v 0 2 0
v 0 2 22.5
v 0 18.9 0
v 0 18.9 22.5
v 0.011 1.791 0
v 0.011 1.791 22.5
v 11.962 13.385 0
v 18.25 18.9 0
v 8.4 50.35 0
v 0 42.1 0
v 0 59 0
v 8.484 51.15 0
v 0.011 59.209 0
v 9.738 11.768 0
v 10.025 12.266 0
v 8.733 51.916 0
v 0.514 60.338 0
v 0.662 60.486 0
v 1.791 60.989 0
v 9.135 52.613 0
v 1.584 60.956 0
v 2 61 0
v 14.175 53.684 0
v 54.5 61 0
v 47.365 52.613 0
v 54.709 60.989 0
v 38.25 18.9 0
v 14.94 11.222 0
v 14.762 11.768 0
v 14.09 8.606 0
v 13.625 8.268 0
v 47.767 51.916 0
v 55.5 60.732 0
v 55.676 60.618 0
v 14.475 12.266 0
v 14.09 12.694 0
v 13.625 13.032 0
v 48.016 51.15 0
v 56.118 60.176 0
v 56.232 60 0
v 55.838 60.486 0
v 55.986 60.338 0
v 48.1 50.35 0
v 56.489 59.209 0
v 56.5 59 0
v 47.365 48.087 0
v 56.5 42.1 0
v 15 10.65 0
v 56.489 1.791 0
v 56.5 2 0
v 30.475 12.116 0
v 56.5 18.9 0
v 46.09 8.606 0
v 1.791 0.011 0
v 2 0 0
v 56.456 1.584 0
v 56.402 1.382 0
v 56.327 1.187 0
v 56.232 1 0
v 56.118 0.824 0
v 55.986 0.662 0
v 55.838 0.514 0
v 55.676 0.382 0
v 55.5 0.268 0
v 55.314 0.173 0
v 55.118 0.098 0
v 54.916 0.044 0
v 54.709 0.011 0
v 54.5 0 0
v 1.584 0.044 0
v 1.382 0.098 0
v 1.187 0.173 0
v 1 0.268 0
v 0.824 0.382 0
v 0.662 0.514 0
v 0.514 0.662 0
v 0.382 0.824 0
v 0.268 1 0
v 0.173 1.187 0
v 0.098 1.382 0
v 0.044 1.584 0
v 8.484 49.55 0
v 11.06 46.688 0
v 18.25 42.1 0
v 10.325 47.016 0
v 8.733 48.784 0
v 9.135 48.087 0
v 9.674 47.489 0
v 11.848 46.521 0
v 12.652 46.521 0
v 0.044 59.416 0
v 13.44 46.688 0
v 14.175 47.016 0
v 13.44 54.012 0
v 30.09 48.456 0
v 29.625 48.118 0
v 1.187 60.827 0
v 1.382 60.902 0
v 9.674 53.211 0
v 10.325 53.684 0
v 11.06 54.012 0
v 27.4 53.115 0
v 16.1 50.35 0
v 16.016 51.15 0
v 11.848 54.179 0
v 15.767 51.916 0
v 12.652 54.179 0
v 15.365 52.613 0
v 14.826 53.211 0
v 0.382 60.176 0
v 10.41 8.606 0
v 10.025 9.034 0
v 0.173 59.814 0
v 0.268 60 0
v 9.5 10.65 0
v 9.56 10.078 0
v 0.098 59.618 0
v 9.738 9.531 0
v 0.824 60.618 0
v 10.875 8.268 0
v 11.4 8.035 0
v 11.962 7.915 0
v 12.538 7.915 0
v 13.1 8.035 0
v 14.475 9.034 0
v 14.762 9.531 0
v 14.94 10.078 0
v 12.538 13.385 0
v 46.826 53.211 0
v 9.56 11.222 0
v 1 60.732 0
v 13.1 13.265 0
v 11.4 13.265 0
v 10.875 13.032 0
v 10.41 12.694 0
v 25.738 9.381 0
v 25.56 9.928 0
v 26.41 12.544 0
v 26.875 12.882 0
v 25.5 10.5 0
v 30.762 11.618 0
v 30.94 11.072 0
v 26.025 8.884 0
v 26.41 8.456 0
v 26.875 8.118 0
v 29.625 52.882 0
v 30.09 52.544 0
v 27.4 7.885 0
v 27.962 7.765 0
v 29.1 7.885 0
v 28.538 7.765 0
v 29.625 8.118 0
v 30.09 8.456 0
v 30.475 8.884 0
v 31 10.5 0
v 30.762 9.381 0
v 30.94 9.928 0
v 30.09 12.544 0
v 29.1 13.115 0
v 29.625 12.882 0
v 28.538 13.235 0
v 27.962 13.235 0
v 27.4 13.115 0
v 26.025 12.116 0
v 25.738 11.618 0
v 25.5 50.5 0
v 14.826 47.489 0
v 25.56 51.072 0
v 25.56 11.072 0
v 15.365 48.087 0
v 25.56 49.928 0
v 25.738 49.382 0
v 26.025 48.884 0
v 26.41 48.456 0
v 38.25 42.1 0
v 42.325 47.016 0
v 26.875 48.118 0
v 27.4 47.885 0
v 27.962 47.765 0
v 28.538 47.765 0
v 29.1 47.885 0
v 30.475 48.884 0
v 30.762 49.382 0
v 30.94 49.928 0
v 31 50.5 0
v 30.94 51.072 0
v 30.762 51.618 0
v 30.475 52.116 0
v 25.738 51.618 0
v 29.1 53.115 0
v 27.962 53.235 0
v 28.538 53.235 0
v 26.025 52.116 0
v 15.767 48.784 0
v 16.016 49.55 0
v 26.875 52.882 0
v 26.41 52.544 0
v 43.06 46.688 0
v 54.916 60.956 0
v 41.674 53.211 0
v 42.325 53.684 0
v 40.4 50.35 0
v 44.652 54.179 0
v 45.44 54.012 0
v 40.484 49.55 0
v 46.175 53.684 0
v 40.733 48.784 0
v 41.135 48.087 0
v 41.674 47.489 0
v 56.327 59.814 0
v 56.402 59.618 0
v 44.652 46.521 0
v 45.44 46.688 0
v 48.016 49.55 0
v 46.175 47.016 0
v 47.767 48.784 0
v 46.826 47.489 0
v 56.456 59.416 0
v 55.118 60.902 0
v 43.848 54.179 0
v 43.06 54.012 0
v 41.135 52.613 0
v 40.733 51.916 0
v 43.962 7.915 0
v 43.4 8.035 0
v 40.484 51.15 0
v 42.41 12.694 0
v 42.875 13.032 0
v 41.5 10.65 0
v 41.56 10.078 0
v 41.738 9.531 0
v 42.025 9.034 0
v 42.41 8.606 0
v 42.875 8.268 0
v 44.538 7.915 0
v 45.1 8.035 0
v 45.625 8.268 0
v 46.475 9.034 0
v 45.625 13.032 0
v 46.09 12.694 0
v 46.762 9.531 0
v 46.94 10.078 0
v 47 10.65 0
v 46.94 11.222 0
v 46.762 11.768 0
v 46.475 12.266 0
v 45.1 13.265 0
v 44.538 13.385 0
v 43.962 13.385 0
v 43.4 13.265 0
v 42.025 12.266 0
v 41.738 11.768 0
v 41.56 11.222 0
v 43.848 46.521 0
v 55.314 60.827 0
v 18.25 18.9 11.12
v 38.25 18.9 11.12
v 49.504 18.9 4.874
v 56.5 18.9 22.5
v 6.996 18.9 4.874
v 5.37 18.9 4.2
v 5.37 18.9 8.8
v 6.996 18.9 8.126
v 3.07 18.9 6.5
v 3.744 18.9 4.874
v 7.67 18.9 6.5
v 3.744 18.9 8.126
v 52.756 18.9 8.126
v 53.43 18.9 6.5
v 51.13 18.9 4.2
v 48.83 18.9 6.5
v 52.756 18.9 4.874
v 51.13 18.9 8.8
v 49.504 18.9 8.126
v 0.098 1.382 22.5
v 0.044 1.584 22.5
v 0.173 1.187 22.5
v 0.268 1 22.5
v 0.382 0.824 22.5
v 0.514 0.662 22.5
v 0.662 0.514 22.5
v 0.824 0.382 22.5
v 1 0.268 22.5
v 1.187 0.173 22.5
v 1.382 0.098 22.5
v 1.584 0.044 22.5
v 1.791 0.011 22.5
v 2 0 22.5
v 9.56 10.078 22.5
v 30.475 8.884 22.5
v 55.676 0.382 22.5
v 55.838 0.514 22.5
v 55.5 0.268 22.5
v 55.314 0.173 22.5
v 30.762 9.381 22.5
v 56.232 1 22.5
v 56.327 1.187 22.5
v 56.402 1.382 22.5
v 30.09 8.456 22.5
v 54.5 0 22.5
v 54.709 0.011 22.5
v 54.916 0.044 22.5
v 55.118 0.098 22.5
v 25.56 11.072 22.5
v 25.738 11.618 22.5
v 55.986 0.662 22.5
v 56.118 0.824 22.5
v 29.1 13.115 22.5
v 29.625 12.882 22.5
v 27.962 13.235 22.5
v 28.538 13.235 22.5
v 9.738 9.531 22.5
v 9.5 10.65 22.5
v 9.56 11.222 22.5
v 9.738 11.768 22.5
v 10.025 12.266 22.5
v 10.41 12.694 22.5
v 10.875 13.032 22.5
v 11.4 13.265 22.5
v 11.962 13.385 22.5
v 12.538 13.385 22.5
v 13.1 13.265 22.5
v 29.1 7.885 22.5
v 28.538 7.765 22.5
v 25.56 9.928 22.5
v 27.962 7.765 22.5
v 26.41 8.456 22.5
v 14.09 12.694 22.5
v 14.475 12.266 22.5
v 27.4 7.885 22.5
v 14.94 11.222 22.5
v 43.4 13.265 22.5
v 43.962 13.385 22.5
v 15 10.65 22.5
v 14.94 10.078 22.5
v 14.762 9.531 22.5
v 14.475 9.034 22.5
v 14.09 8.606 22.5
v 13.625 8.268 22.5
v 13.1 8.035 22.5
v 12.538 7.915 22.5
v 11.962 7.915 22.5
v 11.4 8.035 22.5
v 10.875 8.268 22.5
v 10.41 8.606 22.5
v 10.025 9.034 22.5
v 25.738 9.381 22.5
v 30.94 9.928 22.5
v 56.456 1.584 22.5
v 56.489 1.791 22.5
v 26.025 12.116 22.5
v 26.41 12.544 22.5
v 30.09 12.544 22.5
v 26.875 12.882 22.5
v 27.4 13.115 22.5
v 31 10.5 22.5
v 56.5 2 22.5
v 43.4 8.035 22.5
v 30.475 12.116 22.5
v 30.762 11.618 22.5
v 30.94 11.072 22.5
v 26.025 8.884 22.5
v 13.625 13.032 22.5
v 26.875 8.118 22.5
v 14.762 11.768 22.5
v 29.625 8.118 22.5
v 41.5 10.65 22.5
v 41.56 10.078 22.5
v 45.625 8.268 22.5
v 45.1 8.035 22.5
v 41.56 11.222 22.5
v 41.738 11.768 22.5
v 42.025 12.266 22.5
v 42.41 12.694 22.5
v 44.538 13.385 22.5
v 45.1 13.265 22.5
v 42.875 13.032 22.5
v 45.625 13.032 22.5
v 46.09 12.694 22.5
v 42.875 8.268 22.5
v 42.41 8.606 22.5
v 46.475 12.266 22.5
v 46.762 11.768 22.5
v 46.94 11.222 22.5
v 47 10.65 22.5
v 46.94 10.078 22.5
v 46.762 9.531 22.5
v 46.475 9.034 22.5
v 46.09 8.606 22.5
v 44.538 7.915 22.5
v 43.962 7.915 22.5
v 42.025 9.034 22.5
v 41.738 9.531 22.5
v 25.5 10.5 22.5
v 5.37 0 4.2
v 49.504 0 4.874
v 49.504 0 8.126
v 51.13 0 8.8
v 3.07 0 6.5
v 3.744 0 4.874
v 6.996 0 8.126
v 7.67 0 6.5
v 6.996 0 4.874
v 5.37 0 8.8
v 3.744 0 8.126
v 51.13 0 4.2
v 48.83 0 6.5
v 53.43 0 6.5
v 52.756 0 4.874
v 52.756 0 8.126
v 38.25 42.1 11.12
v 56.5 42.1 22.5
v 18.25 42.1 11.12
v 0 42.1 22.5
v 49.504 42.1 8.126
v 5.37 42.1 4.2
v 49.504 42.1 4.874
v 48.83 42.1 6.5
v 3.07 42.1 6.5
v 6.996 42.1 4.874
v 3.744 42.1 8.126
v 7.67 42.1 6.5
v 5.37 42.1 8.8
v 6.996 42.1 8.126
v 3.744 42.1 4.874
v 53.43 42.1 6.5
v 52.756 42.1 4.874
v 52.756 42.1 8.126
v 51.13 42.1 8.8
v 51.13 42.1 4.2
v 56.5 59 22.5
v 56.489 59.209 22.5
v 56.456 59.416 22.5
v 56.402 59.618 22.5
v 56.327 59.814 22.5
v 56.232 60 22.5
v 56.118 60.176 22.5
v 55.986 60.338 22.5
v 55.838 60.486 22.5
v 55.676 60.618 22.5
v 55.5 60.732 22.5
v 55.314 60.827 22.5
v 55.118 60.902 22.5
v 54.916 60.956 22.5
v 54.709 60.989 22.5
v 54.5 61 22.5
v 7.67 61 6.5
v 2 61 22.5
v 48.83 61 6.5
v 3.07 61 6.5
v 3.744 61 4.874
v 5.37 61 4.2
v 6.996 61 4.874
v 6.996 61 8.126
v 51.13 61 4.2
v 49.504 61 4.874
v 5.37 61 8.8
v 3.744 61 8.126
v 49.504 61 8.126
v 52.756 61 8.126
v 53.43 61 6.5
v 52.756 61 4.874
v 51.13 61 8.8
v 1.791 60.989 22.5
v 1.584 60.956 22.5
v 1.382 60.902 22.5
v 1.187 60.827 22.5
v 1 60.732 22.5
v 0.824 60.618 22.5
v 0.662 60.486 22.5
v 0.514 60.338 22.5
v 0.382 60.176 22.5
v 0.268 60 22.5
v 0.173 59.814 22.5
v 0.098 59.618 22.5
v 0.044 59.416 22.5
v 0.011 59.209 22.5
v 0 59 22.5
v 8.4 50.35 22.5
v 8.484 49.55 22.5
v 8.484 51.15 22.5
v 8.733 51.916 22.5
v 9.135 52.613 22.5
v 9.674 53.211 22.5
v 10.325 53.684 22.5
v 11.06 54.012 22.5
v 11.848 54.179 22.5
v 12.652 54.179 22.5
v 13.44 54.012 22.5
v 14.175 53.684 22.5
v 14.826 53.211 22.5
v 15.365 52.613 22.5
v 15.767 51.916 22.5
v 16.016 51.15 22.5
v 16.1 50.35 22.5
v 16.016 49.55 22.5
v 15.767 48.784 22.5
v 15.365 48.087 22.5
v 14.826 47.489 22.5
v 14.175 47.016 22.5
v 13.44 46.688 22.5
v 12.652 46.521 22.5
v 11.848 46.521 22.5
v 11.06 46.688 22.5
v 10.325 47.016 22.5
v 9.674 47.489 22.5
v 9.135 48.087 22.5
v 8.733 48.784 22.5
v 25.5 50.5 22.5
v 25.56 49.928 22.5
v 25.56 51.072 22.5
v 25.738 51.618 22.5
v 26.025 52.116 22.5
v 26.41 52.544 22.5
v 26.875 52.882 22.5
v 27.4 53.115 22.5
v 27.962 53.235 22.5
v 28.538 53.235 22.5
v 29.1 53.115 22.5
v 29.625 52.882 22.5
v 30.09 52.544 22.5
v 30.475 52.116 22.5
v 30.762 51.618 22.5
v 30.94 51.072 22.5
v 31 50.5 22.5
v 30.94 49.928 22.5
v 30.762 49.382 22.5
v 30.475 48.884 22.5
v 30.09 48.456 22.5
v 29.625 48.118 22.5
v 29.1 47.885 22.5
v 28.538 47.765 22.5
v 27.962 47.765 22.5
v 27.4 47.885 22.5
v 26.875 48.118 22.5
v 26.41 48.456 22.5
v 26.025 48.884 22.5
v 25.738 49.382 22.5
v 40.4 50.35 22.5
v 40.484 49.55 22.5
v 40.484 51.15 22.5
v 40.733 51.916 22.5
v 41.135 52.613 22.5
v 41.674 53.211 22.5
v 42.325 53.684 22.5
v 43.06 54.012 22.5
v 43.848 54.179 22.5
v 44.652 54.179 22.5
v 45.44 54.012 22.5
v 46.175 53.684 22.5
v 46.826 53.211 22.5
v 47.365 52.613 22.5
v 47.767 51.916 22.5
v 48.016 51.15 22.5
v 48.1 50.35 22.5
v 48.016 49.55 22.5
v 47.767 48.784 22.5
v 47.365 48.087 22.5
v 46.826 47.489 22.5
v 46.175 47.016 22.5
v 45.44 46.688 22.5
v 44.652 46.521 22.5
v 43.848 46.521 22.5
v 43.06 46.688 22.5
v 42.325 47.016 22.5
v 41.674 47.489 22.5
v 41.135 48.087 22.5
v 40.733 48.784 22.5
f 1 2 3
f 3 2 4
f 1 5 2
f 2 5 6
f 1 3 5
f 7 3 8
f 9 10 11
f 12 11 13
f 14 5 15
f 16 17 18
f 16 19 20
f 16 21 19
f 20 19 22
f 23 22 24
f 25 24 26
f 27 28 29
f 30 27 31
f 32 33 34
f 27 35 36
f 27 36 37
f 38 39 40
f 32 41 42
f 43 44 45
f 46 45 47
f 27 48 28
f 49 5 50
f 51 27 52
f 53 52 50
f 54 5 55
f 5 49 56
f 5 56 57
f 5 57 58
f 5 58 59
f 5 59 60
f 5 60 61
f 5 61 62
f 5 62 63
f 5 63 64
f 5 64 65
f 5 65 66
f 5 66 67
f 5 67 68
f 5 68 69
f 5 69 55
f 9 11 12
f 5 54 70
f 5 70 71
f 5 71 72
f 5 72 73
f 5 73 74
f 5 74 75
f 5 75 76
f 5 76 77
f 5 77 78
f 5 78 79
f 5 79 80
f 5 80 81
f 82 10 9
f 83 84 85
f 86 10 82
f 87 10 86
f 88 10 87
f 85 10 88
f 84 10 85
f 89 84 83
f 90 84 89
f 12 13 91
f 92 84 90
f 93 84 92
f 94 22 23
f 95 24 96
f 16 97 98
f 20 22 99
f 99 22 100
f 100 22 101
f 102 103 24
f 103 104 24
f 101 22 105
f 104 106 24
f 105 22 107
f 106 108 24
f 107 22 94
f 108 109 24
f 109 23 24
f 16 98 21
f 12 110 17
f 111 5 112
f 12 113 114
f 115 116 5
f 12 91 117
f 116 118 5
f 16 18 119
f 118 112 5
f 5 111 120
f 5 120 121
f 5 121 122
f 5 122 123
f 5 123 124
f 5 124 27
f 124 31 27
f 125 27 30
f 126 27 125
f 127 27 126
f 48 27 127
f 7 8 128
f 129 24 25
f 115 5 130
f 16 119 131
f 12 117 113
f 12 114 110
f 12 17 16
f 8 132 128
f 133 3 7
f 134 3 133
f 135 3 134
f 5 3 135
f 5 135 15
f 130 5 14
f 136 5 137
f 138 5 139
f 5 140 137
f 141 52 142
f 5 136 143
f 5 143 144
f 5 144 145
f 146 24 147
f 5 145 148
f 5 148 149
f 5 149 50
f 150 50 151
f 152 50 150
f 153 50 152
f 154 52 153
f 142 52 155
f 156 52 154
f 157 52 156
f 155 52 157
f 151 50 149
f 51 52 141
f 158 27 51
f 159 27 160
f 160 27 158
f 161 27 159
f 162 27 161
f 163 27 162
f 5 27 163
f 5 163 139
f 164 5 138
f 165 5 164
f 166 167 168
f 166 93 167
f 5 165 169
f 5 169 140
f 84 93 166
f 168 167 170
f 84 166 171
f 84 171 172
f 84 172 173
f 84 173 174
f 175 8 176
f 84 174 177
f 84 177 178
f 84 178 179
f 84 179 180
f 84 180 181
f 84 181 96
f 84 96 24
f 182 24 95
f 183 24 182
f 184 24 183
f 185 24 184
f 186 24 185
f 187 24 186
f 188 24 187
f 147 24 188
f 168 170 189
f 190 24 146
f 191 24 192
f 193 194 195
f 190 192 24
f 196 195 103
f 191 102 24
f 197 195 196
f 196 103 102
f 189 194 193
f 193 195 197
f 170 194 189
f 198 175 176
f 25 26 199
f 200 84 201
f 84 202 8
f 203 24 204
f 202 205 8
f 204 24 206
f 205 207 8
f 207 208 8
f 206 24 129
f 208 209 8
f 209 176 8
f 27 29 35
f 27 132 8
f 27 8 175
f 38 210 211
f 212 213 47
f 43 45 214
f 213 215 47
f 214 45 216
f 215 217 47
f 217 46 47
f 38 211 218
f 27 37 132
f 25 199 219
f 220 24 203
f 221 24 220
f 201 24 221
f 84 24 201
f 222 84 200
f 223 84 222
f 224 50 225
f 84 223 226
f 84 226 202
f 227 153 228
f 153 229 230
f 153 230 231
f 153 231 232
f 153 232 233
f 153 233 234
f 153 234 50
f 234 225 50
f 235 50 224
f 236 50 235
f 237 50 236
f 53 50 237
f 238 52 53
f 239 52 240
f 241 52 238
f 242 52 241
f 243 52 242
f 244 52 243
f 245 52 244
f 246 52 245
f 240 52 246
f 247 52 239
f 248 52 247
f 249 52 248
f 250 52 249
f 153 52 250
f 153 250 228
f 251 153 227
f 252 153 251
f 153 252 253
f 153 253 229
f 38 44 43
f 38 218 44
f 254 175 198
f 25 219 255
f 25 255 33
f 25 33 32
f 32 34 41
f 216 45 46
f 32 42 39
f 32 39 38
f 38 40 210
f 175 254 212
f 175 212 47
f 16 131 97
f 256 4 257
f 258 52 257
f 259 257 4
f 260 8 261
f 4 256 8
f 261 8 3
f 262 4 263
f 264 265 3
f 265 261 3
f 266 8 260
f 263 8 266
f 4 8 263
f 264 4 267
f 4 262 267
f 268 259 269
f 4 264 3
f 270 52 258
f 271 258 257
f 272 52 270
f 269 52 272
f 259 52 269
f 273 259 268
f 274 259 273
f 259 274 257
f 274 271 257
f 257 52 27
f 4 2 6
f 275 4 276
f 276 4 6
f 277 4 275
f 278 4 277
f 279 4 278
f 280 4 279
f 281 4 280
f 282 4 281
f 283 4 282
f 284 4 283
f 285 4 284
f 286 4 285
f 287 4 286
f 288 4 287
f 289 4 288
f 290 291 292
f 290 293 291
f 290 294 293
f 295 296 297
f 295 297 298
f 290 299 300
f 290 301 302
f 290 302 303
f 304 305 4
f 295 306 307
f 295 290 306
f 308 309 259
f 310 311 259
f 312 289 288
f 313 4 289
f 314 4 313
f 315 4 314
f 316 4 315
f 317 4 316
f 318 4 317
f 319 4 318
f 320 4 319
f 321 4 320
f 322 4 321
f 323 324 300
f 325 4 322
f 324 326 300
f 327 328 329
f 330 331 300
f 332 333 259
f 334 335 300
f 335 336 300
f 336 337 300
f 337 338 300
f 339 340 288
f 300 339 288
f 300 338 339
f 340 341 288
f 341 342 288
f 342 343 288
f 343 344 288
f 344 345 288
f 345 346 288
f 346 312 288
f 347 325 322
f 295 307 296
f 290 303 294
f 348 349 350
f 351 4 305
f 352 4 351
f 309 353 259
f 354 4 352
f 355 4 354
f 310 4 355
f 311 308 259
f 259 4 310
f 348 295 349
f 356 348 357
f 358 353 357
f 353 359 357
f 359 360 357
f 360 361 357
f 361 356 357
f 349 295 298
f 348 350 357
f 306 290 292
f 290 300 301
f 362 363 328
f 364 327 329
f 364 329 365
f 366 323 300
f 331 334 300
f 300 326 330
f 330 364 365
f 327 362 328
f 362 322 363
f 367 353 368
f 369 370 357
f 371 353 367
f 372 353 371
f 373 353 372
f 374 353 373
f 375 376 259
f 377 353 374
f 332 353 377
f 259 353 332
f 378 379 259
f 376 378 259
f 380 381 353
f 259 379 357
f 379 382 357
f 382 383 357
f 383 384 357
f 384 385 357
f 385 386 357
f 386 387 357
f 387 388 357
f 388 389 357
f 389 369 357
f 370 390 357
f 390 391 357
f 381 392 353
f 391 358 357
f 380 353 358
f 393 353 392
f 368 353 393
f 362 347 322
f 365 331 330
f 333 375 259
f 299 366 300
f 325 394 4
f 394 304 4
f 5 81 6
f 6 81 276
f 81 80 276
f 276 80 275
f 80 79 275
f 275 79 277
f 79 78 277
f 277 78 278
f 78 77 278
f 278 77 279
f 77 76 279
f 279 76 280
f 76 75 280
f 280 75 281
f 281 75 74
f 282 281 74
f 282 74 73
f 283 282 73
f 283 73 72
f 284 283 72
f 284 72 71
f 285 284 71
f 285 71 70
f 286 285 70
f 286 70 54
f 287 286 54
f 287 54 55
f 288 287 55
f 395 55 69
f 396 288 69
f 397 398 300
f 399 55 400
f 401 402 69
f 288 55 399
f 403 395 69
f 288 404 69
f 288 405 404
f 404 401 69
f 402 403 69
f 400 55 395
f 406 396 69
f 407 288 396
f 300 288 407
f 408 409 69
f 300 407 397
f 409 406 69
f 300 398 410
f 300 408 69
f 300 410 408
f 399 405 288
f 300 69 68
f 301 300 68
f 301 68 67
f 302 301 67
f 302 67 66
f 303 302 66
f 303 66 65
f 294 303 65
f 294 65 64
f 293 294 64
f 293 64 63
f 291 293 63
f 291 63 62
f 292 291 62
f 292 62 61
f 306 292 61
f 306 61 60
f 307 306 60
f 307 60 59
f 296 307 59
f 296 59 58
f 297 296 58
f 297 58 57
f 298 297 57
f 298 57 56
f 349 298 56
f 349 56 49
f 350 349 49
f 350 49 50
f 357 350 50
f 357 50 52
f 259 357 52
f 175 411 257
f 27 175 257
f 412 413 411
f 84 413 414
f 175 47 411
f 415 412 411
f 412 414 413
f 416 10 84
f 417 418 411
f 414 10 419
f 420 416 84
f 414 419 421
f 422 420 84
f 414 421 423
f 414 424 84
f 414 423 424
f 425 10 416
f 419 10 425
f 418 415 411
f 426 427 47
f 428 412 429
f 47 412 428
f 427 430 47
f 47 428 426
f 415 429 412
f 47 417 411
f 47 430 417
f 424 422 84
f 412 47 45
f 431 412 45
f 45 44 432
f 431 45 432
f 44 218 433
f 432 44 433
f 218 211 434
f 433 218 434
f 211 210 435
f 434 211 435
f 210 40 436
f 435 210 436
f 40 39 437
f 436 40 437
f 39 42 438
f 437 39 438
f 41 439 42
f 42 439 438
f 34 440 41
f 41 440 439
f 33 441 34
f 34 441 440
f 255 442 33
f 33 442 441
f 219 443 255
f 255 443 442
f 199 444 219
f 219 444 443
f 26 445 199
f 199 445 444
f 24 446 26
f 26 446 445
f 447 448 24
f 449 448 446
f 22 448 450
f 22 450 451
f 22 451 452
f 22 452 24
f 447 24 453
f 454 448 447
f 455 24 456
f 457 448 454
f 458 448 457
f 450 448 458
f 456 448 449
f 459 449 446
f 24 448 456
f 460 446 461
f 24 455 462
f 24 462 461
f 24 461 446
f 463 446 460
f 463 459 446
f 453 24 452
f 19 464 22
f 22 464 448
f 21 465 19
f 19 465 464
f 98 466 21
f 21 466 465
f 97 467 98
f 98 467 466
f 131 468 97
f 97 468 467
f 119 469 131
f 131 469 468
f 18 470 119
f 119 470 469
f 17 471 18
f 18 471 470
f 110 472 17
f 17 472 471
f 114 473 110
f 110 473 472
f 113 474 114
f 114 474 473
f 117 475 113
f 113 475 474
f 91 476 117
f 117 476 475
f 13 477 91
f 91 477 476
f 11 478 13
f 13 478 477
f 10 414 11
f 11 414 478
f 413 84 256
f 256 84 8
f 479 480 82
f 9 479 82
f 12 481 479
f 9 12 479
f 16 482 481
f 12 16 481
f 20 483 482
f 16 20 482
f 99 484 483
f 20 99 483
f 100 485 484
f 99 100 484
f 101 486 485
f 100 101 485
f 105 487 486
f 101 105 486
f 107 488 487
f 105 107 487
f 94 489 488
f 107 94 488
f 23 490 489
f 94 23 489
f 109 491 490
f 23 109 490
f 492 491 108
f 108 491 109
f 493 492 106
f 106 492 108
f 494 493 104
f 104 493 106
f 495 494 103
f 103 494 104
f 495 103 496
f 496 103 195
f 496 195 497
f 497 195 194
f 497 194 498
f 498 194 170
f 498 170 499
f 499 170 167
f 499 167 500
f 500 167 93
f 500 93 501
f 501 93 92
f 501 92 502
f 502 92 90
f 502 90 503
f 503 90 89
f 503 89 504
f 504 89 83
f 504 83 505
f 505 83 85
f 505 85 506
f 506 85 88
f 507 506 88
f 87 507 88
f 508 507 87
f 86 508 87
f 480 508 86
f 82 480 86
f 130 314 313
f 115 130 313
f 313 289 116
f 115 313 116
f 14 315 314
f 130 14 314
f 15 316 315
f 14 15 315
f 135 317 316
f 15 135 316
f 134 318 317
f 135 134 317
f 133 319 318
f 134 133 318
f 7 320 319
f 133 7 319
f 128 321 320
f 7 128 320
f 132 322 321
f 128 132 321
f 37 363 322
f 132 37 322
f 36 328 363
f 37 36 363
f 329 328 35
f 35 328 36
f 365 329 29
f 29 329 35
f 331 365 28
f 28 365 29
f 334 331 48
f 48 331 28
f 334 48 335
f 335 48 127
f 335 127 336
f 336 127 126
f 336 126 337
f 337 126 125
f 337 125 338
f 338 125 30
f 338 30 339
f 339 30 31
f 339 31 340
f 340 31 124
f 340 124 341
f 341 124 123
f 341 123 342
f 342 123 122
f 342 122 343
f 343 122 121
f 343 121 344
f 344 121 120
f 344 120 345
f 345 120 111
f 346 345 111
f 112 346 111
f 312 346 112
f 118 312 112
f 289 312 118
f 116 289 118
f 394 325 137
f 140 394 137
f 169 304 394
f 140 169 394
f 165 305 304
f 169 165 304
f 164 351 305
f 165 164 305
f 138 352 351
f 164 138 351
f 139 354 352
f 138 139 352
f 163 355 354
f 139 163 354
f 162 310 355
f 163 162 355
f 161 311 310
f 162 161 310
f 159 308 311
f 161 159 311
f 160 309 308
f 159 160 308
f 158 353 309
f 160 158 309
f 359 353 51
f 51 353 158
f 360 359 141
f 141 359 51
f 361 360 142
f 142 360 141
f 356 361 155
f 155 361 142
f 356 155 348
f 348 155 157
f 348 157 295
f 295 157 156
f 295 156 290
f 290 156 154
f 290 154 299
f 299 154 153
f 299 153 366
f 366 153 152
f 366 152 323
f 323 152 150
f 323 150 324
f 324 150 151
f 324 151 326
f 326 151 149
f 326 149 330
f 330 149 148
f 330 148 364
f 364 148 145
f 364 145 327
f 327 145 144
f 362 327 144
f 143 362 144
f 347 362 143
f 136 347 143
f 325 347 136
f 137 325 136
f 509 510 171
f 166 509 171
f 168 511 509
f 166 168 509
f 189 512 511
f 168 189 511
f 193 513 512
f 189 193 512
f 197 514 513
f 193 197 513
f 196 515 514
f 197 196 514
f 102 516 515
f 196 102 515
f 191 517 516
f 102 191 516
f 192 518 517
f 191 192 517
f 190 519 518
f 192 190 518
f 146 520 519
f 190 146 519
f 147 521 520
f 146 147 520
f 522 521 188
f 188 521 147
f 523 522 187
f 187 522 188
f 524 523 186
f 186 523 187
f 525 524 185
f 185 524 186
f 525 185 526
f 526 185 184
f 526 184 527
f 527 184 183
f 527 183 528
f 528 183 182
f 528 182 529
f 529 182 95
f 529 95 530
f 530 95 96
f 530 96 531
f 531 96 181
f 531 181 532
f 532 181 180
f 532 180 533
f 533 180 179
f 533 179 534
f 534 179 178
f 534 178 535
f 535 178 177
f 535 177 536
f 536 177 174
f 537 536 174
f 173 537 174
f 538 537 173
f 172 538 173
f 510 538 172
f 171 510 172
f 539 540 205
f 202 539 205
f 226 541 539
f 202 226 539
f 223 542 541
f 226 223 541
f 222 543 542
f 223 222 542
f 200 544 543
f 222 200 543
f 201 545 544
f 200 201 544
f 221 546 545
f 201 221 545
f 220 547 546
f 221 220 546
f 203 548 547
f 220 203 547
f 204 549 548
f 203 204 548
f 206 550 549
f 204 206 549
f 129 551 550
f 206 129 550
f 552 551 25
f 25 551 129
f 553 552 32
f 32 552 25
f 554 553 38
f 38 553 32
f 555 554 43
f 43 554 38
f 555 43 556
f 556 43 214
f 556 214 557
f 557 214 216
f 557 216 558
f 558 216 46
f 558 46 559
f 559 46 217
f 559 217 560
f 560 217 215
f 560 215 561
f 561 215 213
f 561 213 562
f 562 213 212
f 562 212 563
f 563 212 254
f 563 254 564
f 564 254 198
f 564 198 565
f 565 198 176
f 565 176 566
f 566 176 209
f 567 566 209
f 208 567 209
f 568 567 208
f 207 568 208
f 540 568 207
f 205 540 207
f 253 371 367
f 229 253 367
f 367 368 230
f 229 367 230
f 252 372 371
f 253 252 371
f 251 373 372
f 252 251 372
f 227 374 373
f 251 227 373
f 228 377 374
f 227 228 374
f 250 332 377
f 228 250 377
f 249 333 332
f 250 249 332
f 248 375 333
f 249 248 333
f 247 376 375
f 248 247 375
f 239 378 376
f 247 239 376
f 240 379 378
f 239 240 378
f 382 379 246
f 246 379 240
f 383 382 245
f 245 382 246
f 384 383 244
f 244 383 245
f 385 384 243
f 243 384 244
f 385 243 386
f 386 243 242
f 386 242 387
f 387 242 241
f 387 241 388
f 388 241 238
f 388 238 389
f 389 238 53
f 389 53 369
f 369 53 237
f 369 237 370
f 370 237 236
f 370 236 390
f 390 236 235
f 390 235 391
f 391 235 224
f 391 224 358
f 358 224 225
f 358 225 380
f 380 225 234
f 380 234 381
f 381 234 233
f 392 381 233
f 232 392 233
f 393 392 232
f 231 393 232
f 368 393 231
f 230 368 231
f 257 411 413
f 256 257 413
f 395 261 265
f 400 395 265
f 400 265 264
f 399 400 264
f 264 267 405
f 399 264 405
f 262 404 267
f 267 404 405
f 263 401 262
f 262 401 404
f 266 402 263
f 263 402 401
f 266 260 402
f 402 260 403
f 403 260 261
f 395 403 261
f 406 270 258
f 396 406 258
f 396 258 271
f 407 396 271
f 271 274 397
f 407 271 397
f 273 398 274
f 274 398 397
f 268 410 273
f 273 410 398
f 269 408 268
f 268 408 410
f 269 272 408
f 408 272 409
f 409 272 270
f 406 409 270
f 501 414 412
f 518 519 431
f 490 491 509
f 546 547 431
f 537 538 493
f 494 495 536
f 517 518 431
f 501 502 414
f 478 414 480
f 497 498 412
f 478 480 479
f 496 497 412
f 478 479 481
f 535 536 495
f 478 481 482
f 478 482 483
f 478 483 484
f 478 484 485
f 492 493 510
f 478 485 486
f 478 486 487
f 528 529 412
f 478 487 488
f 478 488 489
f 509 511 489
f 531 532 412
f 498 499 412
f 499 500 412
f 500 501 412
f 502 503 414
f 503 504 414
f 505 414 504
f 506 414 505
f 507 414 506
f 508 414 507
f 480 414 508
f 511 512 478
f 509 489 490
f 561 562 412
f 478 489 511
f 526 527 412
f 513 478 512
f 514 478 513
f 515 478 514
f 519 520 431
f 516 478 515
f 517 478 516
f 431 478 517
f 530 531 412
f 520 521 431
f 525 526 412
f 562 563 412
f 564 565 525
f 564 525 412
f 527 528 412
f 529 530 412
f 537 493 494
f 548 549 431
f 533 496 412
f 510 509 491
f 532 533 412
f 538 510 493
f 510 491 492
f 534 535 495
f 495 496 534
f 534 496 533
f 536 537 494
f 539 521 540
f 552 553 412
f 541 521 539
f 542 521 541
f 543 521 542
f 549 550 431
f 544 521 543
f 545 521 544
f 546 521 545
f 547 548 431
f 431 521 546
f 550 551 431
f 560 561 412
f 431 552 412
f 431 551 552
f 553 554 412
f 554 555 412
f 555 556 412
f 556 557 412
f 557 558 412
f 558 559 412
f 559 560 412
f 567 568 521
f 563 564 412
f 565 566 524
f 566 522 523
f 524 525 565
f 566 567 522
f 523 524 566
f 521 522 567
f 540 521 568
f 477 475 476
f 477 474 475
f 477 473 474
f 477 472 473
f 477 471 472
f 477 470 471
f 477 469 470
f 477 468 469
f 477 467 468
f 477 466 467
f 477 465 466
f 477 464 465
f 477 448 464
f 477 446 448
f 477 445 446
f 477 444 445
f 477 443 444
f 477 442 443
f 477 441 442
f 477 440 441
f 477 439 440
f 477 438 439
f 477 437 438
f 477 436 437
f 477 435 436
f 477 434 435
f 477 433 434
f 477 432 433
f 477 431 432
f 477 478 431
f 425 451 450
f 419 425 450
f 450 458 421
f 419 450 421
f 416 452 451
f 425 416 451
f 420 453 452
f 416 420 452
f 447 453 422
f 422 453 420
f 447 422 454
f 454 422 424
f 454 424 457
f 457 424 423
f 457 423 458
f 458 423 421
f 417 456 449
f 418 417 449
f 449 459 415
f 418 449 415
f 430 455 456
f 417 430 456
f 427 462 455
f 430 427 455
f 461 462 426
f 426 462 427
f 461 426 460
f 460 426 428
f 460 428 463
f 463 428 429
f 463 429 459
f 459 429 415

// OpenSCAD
// file: library.scad
//rounded cube Functions from: http://www.thingiverse.com/thing:38069


module cube_fillet(size,radius=-1,vertical,top,bottom,center=false,$fn=0){
    if (center) {
        cube_fillet_inside(size, radius, vertical, top, bottom, $fn=$fn);
    } else {
        translate([size[0]/2, size[1]/2, size[2]/2])
            cube_fillet_inside(size, radius, vertical, top, bottom, $fn=$fn);
    }
}
module fillet(radius, height=100, $fn=60) {  
    //this creates negative of fillet,
    //i.e. thing to be substracted from object
    translate([-radius, -radius, -height/2-0.01])
        difference() {
            cube([radius*2, radius*2, height+0.02]);
            cylinder(r=radius, h=height+0.02, $fn=$fn);
        }
}

module cube_negative_fillet(size,radius=-1,vertical, top,bottom,$fn=0){
    j=[1,0,1,0];

    for (i=[0:3]) {
        if (radius > -1) {
            rotate([0, 0, 90*i])
                translate([size[1-j[i]]/2, size[j[i]]/2, 0])
                    fillet(radius, size[2], $fn=$fn);
        } else {
            rotate([0, 0, 90*i])
                translate([size[1-j[i]]/2, size[j[i]]/2, 0])
                    fillet(vertical[i], size[2], $fn=$fn);

        }
        rotate([90*i, -90, 0])
            translate([size[2]/2, size[j[i]]/2, 0 ])
                fillet(top[i], size[1-j[i]], $fn=$fn);
        rotate([90*(4-i), 90, 0])
            translate([size[2]/2, size[j[i]]/2, 0])
                fillet(bottom[i], size[1-j[i]], $fn=$fn);
    }
}

module cube_fillet_inside(size,radius=-1,vertical,top,bottom,$fn=0){

    if (radius == 0) {
        cube(size, center=true);
    } else {
        difference() {
            cube(size, center=true);
            cube_negative_fillet(size, radius, vertical, top, bottom, $fn=$fn);
        }
    }
}
// file: lib/illustration.scad
// Illustrations
// Author: sdavi


include <../configuration.scad>
include <../dimensions.scad>

//i_linear_bearing([8,15,6]);
//i_radial_bearing([8,15,24]);
//smooth_rod(d=8, h=60);
//v_slot([20,20], h=50);


module i_linear_bearing(s=[1, 2, 3], $fn=30){////rod diameter,outer diameter, length

	difference(){
		cylinder(d=s[1], h=s[2], $fn=$fn);
		translate([0,0,-0.1])cylinder(d=s[0], h=s[2]+0.2, $fn=$fn);
	}
}

module i_radial_bearing(s=[1, 2, 3], $fn=30){////inner diameter,outer diameter, thickness
	i_linear_bearing(s=s);
}


module smooth_rod(d,h, $fn=30){

	cylinder(d=d, h=h, $fn=$fn);
}

module v_slot(s=[20,20], h=10){
	cube([s[0], s[1], h]);
}
// file: dimensions.scad
// Dimensions
// Author: sdavi


LM8UU = [8, 15, 24];//rod diameter,outter diameter, length
LM12UU = [12, 21, 30];
LM12LUU = [12, 21, 57];
LM12UUx2 = [LM12UU[0], LM12UU[1], LM12UU[2]*2];

BEARING_624 = [4,13,5]; //inner diameter(hole), outter diameter, thickness (http://reprap.org/wiki/Ball_bearing)
BEARING_2x624 = [4, 13, 10]; // 2 624 bearings together, good size for GT2

BEARING_6300 = [10,35,11]; //inner diameter, outer diameter, thickness

vslot_wheel = [23.89,10.23];	//23.89 & 10.23
vslot_wheel_hole = 5+0.5;
vslot_wheel_eccentric = 7.2+0.5; //hole for eccentric spacer
vslot_wheel_spacer_length = 6.35;


t_nut_length = 15+1; //hole in center 1mm cleanance incase hole isnt actually center




GT2_belt_width = 6;
GT2_belt_pitch = 2;
GT2_belt_thickness = 1.38;
GT2_belt_tooth_height = 0.75;  
GT2_belt_tooth_ratio = 0.5;



GT2_pulley_geared_diameter=12.2;//measured from top of tooth to top of tooth opp side// 12.2 is for the 20 tooth pulley

//from metric (prusa i3)
m4_diameter = 4.6;
m4_nut_diameter = 7.6;
m4_nut_diameter_horizontal = 8.15;

m3_diameter = 3.6;
m3_nut_diameter = 5.3;
m3_nut_diameter_horizontal = 6.8;
m3_washer_diameter = 6.9;
//end i3 variables

m5_diameter = 5.5;

//Hex Head M3x30: Head 5.5mm flat to flat, 2.12mm thick
m3_hex_head_diameter = 5.5*2/sqrt(3) + 0.2;

M4 = m4_diameter;
M3 = m3_diameter;
M5 = m5_diameter;
m4_washer_thickness = 0.8; //flat and penny washers
m4_washer_diameter = 9.6;

nema17_holes = 31;// mm between screws
nema17_width = 42; //width
nema17_height = 48;
// file: configuration.scad
// Configuration
// Author: sdavi


include <dimensions.scad>
use <library.scad>


x_rod_distance = 45;

y_bearing = LM8UU;
x_bearing = LM8UU;
//z_bearing = LM12UUx2;
z_bearing = LM12LUU;
belt_bearing = BEARING_2x624;


end_belt_bearing_distance = 25;// distance between 2 bearings on y-ends
belt_clearance = 9.5; //space for belts
x_belt_clearance = 5; //spacing between x-axis vslot and belt

frame_screw = M5; //m5 screws for v/tslot

// calculated vars


//y bearing block
y_bearing_block_length = 2*y_bearing[2] + M3*2 + 5;
//y_bearing_block_width = y_bearing[1]+5;
y_bearing_block_width = 20; //vslot frame width

y_bearing_block_height = 6+y_bearing[1]/2;

//xy_bearing_distance = y_bearing_block_width/2+belt_clearance+belt_bearing[1]/2; //distance between center of y-bearing to center of x-belt bearing 
xy_bearing_distance = vslot_wheel[1]/2+vslot_wheel_spacer_length+belt_clearance+belt_bearing[1]/2; //distance between center of v_slot to center of x-belt bearing 




//min height for belt bearings
min_beltbearing_height = max(((belt_bearing[2]+m4_washer_thickness*2) * 2), y_bearing_block_height);
// main file
// xy block  
// Author: sdavi


include <configuration.scad>
include <dimensions.scad>
include <lib/illustration.scad>

//BoM (for both sides)

//4x eccentric spacers (6.35mm / 1/4")
//8x solid wheel kit (or seperate with 6.35mm / 1/4" spacer)
//8x M5x45mm screw

//2x 8mm Smooth Rod for X-Axis
//4x M4 ??mm bolt + nut
//8x F624ZZ 
//8x M4 washer



xy_block_vslot();
//	%illustration();

//xy_block_vslot_back(); //only if you want a extra plate on the other side

long_bearing_screw = false; //use long screw (60mm for bearings) 


v_slot = 20; //20x20

echo("Min Height:", min_beltbearing_height);

h_wheel_spacing = 32;
v_wheel_spacing = 39.7; // spacing used on openbuilds plates. One hole is 5mm and the other hole is 7.2 for the eccentric spacer.

//wheel_hole = M5;
//wheel_hole_eccentric = 7.2+0.5;
wheel_edge_inset = 4.5+vslot_wheel_hole/2;


xy_block_width = h_wheel_spacing+10+ wheel_edge_inset*2;
xy_block_length = x_rod_distance+x_bearing[0]+8;//55;
xy_block_height = 4;

belt_area_clearance = belt_clearance+belt_bearing[1];// room for belt and bearings
belt_area_clearance_width = belt_bearing[1]*2+GT2_belt_thickness+4;

echo("bc Width:",belt_area_clearance_width);

total_height=belt_area_clearance;
echo("TotalHeight: ", total_height);



belt_bearing_x_pos = [xy_block_width/2-10-x_belt_clearance-GT2_belt_thickness -belt_bearing[1]/2,
 					     xy_block_width/2+10+x_belt_clearance+GT2_belt_thickness + belt_bearing[1]/2];
belt_bearing_z_pos = belt_bearing[1]/2;


//[x,y,size]
wheel_holes = [[xy_block_width/2-h_wheel_spacing/2, xy_block_length/2-v_wheel_spacing/2, vslot_wheel_hole],
				  [xy_block_width/2+h_wheel_spacing/2, xy_block_length/2-v_wheel_spacing/2,vslot_wheel_hole],
				  [xy_block_width/2-h_wheel_spacing/2, xy_block_length/2+v_wheel_spacing/2,vslot_wheel_eccentric], //eccentric
				  [xy_block_width/2+h_wheel_spacing/2, xy_block_length/2+v_wheel_spacing/2,vslot_wheel_eccentric]//eccentric
				];



//illustrations
module illustration(){

	number_wheels = 4; //3 or 4

	translate([belt_bearing_x_pos[0], xy_block_length/2-min_beltbearing_height/2, belt_bearing_z_pos])
		color("green") rotate([-90,0,0])i_radial_bearing(belt_bearing);
	translate([belt_bearing_x_pos[1], xy_block_length/2+min_beltbearing_height/2-belt_bearing[2], belt_bearing_z_pos])
		color("green") rotate([-90,0,0])i_radial_bearing(belt_bearing);

	//vslot y-axis
	translate([-20, xy_block_length/2-10, total_height+6.35+10.23/2-10])
		cube([40+xy_block_width, 20,20]);
	//vslot x-axis
	translate([xy_block_width/2-20/2, xy_block_length/2-20/2, -50])
		cube([20, 20,50]);

	//x-axis cube/triangles to fix to xy end
	translate([xy_block_width/2-20/2, xy_block_length/2-20/2, -20])
		cube([20, 20,20]);



	//wheels
	//23.89 & 10.23
	color("red"){
		//for(p=wheel_holes){
		for(i=[0:number_wheels-1]){
			echo(i, wheel_holes[i]);

			translate([wheel_holes[i][0], wheel_holes[i][1], total_height]){
				
				if(number_wheels == 3 && i==2){
					translate([h_wheel_spacing/2,0,0])
						cylinder(d=8, h=6.35, $fn=60);//spacer/eccentric spacer
					translate([h_wheel_spacing/2,0,6.35]) 
						cylinder(d=23.89, h=10.23, $fn=30);
				}else {
					cylinder(d=8, h=6.35, $fn=60);//spacer/eccentric spacer
					translate([0,0,6.35]) cylinder(d=23.89, h=10.23, $fn=30);
				}
			}
		}

	}

}



module xy_block_vslot(){
	
	difference(){
		union(){
			cube_fillet([xy_block_width, xy_block_length, total_height], vertical=[2,2,2,2]);
		}

		//holes for wheels
		for(p=wheel_holes){
			translate([p[0], p[1], -0.1])
				cylinder(d=p[2], h=total_height+0.2, $fn=30);
		}


		//cutout for belt
		translate([-0.1, xy_block_length/2-min_beltbearing_height/2, total_height-5-GT2_belt_thickness-5])
			cube([xy_block_length+0.2, min_beltbearing_height, belt_area_clearance+0.1]);


		//cutout for belts and bearings going along xaxis
		translate([-0.1, xy_block_length/2-min_beltbearing_height/2, -0.1]){
			cube([(xy_block_width-20)/2+0.1, min_beltbearing_height, total_height+0.1]);			
			translate([0.1+xy_block_width-(xy_block_width-20)/2,0,0])cube([(xy_block_width-20)/2+0.1, min_beltbearing_height, total_height+0.1]);			

		}

		//holes to attach x-vslot
		//uses corner square or triangle
		translate([xy_block_width/2, 0, -0.1]){
			translate([0,xy_block_length/2-20/2-20/2,0]) cylinder(d=M5, h=total_height+0.2, $fn=30);
			translate([0,xy_block_length/2+20/2+20/2,0]) cylinder(d=M5, h=total_height+0.2, $fn=30);

		}
	


		/*translate([xy_block_width/2-belt_area_clearance_width/2, xy_block_length/2-min_beltbearing_height/2, -0.1])
			cube([belt_area_clearance_width, min_beltbearing_height, total_height+0.1]);*/
	
		
		//cut m4 screw hole to mount belt bearings
		for(x=belt_bearing_x_pos){
			
			translate([x, -0.1, belt_bearing_z_pos]){
				rotate([-90,0,0])cylinder(d=M4, h=xy_block_length+0.2);

				if(long_bearing_screw == true){
					//cut hole for head/nut
					rotate([-90,0,0])cylinder(d=9, h=4, $fn=60);//3.4 min height for head
					translate([0, xy_block_length+0.1-4, 0])
						rotate([-90,0,0])cylinder(d=m4_nut_diameter_horizontal, h=4+0.1, $fn=6);//3.4 min height for head
				}

			}
		}



	}


}


module xy_block_vslot_back(){
	difference(){
			cube_fillet([xy_block_width, xy_block_length, xy_block_height], vertical=[3,3,3,3]);


		//holes for wheels
		for(p=wheel_holes){
			translate([p[0], p[1], -0.1])
				cylinder(d=p[2], h=total_height+0.2, $fn=30);
		}

		//holes for x_axis;
		translate([xy_block_width/2, xy_block_length/2+x_rod_distance/2, -0.1])
			cylinder(d=x_bearing[0]+0.2, h=total_height+0.2, $fn=60);
		translate([xy_block_width/2, xy_block_length/2-x_rod_distance/2, -0.1])
			cylinder(d=x_bearing[0]+0.2, h=total_height+0.2, $fn=60);

	}
}	
